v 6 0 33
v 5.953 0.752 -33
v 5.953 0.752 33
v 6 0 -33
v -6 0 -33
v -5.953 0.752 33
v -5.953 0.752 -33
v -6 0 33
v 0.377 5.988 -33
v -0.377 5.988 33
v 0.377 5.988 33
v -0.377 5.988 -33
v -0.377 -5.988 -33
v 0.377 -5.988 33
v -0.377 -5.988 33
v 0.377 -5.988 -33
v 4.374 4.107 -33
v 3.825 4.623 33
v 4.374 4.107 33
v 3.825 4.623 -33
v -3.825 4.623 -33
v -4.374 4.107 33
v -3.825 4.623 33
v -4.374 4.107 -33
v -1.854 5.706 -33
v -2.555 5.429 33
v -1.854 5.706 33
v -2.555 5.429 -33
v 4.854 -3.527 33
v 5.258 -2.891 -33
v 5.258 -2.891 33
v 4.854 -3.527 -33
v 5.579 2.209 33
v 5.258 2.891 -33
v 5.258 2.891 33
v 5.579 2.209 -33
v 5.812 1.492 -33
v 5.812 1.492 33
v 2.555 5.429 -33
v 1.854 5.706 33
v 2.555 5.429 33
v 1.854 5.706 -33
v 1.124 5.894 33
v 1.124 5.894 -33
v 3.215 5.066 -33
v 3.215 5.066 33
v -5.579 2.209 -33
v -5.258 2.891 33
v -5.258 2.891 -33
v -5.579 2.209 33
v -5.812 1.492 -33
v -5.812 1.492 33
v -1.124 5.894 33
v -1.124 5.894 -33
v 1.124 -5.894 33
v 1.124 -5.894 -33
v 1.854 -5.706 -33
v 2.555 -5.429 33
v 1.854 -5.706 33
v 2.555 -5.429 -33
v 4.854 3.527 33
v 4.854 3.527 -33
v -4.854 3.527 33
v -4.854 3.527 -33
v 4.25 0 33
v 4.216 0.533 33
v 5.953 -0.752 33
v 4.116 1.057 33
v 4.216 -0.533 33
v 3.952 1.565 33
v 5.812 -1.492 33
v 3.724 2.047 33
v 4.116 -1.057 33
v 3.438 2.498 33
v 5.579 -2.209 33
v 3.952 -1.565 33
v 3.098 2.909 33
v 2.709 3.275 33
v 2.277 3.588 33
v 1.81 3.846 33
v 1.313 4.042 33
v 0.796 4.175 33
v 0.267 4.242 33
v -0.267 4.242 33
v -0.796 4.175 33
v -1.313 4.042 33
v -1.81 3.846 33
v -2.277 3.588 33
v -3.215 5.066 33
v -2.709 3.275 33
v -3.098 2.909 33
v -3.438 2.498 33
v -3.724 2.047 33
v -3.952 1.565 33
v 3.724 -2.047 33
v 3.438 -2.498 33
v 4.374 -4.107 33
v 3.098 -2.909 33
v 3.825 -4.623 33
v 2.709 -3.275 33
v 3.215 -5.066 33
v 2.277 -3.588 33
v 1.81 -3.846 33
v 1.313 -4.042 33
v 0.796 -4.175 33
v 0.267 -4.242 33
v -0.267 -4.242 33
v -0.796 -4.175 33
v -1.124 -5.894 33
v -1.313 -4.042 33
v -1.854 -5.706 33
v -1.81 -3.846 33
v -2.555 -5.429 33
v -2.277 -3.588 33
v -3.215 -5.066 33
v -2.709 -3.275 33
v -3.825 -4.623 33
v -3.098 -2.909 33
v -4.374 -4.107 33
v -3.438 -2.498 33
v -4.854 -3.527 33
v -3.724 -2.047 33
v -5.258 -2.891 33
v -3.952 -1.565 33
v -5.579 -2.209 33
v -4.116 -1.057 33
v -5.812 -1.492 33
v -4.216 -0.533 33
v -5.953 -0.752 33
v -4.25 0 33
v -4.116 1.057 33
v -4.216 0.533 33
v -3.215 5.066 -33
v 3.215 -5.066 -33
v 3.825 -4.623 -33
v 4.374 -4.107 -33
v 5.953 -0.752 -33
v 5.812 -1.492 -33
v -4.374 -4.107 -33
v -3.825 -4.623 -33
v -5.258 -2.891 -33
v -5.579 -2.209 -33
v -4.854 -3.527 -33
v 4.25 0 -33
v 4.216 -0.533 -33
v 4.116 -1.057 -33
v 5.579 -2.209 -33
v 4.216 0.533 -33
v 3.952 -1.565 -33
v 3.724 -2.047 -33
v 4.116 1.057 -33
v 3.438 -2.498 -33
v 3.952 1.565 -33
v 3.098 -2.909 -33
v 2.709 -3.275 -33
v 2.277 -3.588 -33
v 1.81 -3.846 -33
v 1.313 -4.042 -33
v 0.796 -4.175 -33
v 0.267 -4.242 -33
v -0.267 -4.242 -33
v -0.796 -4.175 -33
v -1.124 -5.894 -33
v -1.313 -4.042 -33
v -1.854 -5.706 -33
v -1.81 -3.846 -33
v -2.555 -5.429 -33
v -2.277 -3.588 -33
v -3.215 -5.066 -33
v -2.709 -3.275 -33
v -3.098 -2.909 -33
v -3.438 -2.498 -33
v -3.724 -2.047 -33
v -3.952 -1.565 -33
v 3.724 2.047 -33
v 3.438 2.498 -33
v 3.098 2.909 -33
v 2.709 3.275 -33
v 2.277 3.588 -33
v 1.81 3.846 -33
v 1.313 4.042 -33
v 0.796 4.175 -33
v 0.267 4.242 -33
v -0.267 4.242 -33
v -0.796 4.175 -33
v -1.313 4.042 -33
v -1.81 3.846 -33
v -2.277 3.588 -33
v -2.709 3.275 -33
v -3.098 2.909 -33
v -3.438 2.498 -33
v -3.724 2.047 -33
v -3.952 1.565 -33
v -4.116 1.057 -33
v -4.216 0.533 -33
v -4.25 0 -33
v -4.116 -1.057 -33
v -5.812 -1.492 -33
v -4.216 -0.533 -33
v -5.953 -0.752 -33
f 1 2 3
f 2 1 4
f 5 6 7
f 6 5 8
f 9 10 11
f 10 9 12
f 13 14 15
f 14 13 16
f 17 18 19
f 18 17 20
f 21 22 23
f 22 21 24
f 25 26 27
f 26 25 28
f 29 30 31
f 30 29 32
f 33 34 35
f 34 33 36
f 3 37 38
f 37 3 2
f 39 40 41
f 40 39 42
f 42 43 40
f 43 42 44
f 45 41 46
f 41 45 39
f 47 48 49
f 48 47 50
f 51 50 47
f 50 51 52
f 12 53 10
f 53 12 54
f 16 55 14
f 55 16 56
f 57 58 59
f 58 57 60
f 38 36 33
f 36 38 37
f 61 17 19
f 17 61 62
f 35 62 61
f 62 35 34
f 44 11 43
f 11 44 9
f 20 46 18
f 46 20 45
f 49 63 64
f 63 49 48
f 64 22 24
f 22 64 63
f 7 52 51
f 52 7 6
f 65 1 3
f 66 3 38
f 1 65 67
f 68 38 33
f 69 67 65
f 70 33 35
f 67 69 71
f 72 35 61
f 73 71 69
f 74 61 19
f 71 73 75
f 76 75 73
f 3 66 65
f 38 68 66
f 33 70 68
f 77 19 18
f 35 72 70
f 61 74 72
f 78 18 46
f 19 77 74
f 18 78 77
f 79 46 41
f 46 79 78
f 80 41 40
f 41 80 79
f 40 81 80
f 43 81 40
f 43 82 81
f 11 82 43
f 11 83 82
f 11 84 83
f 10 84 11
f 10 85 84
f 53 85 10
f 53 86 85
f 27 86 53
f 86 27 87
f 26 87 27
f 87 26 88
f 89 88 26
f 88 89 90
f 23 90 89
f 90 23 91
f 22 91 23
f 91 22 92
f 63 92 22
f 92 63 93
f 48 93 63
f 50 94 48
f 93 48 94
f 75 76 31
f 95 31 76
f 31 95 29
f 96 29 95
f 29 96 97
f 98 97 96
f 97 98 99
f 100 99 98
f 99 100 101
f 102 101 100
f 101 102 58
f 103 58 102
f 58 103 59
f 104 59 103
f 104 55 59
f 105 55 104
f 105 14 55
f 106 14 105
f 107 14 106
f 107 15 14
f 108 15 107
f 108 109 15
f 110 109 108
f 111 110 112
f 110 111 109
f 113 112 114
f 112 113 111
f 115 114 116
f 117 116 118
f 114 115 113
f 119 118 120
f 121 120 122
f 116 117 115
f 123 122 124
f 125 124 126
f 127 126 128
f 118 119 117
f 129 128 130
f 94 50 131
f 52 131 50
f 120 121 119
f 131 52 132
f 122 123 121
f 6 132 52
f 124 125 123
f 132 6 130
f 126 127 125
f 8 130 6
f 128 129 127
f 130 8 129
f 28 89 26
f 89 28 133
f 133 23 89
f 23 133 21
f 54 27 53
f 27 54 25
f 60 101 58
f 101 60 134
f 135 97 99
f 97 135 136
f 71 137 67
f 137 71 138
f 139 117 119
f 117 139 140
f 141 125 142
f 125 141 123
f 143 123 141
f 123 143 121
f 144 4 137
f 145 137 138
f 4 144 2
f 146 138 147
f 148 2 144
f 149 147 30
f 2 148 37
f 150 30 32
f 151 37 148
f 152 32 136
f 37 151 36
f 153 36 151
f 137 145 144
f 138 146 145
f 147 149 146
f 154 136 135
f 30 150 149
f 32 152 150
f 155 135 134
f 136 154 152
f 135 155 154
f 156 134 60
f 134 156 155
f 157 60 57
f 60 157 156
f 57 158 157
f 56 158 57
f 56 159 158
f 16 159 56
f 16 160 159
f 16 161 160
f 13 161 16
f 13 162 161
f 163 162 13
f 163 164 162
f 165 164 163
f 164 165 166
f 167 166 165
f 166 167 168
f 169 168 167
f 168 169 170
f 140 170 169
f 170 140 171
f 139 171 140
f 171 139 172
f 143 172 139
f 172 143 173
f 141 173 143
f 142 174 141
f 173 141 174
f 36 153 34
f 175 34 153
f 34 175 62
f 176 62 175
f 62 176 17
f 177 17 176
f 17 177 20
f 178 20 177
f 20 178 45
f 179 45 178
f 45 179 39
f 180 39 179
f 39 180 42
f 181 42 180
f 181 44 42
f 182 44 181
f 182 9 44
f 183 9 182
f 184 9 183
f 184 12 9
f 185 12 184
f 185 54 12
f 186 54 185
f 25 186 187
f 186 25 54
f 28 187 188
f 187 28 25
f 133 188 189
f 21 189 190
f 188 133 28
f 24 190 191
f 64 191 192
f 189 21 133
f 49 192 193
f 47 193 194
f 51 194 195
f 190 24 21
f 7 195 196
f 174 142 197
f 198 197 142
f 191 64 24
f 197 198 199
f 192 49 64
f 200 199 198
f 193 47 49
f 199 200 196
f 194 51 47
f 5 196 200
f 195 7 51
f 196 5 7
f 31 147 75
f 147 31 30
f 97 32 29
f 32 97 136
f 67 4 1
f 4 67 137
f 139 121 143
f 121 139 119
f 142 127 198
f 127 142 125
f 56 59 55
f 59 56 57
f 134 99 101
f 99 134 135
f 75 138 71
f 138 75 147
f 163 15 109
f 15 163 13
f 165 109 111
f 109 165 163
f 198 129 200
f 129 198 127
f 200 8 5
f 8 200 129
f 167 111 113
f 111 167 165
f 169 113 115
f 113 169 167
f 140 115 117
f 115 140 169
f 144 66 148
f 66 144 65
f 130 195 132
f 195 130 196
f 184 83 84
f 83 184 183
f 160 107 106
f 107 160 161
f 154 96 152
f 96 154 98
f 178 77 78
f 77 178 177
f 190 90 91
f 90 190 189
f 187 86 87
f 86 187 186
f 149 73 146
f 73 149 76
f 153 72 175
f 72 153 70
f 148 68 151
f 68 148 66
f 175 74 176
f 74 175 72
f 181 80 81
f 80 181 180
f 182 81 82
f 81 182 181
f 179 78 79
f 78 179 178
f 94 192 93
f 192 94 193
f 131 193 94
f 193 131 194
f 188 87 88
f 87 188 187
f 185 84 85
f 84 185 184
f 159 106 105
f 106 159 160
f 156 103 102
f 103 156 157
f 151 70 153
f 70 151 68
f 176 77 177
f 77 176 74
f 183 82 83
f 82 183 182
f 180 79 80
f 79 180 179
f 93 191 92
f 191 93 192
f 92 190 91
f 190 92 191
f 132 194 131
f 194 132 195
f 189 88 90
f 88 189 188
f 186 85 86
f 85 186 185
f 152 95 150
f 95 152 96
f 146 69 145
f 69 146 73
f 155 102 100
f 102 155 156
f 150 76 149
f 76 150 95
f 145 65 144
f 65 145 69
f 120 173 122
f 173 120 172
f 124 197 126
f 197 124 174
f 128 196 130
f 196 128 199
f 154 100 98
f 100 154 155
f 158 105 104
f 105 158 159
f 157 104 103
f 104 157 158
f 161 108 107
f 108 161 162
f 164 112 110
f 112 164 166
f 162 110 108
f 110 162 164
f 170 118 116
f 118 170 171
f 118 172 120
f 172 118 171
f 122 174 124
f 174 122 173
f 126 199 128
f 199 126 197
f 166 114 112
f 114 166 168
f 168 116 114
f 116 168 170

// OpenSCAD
$fn = 50;


difference() {
	union() {
		translate(v = [0, 0, -33.0000000000]) {
			cylinder(h = 66, r = 6.0000000000);
		}
	}
	union() {
		translate(v = [0, 0, -100.0000000000]) {
			cylinder(h = 200, r = 4.2500000000);
		}
	}
}
